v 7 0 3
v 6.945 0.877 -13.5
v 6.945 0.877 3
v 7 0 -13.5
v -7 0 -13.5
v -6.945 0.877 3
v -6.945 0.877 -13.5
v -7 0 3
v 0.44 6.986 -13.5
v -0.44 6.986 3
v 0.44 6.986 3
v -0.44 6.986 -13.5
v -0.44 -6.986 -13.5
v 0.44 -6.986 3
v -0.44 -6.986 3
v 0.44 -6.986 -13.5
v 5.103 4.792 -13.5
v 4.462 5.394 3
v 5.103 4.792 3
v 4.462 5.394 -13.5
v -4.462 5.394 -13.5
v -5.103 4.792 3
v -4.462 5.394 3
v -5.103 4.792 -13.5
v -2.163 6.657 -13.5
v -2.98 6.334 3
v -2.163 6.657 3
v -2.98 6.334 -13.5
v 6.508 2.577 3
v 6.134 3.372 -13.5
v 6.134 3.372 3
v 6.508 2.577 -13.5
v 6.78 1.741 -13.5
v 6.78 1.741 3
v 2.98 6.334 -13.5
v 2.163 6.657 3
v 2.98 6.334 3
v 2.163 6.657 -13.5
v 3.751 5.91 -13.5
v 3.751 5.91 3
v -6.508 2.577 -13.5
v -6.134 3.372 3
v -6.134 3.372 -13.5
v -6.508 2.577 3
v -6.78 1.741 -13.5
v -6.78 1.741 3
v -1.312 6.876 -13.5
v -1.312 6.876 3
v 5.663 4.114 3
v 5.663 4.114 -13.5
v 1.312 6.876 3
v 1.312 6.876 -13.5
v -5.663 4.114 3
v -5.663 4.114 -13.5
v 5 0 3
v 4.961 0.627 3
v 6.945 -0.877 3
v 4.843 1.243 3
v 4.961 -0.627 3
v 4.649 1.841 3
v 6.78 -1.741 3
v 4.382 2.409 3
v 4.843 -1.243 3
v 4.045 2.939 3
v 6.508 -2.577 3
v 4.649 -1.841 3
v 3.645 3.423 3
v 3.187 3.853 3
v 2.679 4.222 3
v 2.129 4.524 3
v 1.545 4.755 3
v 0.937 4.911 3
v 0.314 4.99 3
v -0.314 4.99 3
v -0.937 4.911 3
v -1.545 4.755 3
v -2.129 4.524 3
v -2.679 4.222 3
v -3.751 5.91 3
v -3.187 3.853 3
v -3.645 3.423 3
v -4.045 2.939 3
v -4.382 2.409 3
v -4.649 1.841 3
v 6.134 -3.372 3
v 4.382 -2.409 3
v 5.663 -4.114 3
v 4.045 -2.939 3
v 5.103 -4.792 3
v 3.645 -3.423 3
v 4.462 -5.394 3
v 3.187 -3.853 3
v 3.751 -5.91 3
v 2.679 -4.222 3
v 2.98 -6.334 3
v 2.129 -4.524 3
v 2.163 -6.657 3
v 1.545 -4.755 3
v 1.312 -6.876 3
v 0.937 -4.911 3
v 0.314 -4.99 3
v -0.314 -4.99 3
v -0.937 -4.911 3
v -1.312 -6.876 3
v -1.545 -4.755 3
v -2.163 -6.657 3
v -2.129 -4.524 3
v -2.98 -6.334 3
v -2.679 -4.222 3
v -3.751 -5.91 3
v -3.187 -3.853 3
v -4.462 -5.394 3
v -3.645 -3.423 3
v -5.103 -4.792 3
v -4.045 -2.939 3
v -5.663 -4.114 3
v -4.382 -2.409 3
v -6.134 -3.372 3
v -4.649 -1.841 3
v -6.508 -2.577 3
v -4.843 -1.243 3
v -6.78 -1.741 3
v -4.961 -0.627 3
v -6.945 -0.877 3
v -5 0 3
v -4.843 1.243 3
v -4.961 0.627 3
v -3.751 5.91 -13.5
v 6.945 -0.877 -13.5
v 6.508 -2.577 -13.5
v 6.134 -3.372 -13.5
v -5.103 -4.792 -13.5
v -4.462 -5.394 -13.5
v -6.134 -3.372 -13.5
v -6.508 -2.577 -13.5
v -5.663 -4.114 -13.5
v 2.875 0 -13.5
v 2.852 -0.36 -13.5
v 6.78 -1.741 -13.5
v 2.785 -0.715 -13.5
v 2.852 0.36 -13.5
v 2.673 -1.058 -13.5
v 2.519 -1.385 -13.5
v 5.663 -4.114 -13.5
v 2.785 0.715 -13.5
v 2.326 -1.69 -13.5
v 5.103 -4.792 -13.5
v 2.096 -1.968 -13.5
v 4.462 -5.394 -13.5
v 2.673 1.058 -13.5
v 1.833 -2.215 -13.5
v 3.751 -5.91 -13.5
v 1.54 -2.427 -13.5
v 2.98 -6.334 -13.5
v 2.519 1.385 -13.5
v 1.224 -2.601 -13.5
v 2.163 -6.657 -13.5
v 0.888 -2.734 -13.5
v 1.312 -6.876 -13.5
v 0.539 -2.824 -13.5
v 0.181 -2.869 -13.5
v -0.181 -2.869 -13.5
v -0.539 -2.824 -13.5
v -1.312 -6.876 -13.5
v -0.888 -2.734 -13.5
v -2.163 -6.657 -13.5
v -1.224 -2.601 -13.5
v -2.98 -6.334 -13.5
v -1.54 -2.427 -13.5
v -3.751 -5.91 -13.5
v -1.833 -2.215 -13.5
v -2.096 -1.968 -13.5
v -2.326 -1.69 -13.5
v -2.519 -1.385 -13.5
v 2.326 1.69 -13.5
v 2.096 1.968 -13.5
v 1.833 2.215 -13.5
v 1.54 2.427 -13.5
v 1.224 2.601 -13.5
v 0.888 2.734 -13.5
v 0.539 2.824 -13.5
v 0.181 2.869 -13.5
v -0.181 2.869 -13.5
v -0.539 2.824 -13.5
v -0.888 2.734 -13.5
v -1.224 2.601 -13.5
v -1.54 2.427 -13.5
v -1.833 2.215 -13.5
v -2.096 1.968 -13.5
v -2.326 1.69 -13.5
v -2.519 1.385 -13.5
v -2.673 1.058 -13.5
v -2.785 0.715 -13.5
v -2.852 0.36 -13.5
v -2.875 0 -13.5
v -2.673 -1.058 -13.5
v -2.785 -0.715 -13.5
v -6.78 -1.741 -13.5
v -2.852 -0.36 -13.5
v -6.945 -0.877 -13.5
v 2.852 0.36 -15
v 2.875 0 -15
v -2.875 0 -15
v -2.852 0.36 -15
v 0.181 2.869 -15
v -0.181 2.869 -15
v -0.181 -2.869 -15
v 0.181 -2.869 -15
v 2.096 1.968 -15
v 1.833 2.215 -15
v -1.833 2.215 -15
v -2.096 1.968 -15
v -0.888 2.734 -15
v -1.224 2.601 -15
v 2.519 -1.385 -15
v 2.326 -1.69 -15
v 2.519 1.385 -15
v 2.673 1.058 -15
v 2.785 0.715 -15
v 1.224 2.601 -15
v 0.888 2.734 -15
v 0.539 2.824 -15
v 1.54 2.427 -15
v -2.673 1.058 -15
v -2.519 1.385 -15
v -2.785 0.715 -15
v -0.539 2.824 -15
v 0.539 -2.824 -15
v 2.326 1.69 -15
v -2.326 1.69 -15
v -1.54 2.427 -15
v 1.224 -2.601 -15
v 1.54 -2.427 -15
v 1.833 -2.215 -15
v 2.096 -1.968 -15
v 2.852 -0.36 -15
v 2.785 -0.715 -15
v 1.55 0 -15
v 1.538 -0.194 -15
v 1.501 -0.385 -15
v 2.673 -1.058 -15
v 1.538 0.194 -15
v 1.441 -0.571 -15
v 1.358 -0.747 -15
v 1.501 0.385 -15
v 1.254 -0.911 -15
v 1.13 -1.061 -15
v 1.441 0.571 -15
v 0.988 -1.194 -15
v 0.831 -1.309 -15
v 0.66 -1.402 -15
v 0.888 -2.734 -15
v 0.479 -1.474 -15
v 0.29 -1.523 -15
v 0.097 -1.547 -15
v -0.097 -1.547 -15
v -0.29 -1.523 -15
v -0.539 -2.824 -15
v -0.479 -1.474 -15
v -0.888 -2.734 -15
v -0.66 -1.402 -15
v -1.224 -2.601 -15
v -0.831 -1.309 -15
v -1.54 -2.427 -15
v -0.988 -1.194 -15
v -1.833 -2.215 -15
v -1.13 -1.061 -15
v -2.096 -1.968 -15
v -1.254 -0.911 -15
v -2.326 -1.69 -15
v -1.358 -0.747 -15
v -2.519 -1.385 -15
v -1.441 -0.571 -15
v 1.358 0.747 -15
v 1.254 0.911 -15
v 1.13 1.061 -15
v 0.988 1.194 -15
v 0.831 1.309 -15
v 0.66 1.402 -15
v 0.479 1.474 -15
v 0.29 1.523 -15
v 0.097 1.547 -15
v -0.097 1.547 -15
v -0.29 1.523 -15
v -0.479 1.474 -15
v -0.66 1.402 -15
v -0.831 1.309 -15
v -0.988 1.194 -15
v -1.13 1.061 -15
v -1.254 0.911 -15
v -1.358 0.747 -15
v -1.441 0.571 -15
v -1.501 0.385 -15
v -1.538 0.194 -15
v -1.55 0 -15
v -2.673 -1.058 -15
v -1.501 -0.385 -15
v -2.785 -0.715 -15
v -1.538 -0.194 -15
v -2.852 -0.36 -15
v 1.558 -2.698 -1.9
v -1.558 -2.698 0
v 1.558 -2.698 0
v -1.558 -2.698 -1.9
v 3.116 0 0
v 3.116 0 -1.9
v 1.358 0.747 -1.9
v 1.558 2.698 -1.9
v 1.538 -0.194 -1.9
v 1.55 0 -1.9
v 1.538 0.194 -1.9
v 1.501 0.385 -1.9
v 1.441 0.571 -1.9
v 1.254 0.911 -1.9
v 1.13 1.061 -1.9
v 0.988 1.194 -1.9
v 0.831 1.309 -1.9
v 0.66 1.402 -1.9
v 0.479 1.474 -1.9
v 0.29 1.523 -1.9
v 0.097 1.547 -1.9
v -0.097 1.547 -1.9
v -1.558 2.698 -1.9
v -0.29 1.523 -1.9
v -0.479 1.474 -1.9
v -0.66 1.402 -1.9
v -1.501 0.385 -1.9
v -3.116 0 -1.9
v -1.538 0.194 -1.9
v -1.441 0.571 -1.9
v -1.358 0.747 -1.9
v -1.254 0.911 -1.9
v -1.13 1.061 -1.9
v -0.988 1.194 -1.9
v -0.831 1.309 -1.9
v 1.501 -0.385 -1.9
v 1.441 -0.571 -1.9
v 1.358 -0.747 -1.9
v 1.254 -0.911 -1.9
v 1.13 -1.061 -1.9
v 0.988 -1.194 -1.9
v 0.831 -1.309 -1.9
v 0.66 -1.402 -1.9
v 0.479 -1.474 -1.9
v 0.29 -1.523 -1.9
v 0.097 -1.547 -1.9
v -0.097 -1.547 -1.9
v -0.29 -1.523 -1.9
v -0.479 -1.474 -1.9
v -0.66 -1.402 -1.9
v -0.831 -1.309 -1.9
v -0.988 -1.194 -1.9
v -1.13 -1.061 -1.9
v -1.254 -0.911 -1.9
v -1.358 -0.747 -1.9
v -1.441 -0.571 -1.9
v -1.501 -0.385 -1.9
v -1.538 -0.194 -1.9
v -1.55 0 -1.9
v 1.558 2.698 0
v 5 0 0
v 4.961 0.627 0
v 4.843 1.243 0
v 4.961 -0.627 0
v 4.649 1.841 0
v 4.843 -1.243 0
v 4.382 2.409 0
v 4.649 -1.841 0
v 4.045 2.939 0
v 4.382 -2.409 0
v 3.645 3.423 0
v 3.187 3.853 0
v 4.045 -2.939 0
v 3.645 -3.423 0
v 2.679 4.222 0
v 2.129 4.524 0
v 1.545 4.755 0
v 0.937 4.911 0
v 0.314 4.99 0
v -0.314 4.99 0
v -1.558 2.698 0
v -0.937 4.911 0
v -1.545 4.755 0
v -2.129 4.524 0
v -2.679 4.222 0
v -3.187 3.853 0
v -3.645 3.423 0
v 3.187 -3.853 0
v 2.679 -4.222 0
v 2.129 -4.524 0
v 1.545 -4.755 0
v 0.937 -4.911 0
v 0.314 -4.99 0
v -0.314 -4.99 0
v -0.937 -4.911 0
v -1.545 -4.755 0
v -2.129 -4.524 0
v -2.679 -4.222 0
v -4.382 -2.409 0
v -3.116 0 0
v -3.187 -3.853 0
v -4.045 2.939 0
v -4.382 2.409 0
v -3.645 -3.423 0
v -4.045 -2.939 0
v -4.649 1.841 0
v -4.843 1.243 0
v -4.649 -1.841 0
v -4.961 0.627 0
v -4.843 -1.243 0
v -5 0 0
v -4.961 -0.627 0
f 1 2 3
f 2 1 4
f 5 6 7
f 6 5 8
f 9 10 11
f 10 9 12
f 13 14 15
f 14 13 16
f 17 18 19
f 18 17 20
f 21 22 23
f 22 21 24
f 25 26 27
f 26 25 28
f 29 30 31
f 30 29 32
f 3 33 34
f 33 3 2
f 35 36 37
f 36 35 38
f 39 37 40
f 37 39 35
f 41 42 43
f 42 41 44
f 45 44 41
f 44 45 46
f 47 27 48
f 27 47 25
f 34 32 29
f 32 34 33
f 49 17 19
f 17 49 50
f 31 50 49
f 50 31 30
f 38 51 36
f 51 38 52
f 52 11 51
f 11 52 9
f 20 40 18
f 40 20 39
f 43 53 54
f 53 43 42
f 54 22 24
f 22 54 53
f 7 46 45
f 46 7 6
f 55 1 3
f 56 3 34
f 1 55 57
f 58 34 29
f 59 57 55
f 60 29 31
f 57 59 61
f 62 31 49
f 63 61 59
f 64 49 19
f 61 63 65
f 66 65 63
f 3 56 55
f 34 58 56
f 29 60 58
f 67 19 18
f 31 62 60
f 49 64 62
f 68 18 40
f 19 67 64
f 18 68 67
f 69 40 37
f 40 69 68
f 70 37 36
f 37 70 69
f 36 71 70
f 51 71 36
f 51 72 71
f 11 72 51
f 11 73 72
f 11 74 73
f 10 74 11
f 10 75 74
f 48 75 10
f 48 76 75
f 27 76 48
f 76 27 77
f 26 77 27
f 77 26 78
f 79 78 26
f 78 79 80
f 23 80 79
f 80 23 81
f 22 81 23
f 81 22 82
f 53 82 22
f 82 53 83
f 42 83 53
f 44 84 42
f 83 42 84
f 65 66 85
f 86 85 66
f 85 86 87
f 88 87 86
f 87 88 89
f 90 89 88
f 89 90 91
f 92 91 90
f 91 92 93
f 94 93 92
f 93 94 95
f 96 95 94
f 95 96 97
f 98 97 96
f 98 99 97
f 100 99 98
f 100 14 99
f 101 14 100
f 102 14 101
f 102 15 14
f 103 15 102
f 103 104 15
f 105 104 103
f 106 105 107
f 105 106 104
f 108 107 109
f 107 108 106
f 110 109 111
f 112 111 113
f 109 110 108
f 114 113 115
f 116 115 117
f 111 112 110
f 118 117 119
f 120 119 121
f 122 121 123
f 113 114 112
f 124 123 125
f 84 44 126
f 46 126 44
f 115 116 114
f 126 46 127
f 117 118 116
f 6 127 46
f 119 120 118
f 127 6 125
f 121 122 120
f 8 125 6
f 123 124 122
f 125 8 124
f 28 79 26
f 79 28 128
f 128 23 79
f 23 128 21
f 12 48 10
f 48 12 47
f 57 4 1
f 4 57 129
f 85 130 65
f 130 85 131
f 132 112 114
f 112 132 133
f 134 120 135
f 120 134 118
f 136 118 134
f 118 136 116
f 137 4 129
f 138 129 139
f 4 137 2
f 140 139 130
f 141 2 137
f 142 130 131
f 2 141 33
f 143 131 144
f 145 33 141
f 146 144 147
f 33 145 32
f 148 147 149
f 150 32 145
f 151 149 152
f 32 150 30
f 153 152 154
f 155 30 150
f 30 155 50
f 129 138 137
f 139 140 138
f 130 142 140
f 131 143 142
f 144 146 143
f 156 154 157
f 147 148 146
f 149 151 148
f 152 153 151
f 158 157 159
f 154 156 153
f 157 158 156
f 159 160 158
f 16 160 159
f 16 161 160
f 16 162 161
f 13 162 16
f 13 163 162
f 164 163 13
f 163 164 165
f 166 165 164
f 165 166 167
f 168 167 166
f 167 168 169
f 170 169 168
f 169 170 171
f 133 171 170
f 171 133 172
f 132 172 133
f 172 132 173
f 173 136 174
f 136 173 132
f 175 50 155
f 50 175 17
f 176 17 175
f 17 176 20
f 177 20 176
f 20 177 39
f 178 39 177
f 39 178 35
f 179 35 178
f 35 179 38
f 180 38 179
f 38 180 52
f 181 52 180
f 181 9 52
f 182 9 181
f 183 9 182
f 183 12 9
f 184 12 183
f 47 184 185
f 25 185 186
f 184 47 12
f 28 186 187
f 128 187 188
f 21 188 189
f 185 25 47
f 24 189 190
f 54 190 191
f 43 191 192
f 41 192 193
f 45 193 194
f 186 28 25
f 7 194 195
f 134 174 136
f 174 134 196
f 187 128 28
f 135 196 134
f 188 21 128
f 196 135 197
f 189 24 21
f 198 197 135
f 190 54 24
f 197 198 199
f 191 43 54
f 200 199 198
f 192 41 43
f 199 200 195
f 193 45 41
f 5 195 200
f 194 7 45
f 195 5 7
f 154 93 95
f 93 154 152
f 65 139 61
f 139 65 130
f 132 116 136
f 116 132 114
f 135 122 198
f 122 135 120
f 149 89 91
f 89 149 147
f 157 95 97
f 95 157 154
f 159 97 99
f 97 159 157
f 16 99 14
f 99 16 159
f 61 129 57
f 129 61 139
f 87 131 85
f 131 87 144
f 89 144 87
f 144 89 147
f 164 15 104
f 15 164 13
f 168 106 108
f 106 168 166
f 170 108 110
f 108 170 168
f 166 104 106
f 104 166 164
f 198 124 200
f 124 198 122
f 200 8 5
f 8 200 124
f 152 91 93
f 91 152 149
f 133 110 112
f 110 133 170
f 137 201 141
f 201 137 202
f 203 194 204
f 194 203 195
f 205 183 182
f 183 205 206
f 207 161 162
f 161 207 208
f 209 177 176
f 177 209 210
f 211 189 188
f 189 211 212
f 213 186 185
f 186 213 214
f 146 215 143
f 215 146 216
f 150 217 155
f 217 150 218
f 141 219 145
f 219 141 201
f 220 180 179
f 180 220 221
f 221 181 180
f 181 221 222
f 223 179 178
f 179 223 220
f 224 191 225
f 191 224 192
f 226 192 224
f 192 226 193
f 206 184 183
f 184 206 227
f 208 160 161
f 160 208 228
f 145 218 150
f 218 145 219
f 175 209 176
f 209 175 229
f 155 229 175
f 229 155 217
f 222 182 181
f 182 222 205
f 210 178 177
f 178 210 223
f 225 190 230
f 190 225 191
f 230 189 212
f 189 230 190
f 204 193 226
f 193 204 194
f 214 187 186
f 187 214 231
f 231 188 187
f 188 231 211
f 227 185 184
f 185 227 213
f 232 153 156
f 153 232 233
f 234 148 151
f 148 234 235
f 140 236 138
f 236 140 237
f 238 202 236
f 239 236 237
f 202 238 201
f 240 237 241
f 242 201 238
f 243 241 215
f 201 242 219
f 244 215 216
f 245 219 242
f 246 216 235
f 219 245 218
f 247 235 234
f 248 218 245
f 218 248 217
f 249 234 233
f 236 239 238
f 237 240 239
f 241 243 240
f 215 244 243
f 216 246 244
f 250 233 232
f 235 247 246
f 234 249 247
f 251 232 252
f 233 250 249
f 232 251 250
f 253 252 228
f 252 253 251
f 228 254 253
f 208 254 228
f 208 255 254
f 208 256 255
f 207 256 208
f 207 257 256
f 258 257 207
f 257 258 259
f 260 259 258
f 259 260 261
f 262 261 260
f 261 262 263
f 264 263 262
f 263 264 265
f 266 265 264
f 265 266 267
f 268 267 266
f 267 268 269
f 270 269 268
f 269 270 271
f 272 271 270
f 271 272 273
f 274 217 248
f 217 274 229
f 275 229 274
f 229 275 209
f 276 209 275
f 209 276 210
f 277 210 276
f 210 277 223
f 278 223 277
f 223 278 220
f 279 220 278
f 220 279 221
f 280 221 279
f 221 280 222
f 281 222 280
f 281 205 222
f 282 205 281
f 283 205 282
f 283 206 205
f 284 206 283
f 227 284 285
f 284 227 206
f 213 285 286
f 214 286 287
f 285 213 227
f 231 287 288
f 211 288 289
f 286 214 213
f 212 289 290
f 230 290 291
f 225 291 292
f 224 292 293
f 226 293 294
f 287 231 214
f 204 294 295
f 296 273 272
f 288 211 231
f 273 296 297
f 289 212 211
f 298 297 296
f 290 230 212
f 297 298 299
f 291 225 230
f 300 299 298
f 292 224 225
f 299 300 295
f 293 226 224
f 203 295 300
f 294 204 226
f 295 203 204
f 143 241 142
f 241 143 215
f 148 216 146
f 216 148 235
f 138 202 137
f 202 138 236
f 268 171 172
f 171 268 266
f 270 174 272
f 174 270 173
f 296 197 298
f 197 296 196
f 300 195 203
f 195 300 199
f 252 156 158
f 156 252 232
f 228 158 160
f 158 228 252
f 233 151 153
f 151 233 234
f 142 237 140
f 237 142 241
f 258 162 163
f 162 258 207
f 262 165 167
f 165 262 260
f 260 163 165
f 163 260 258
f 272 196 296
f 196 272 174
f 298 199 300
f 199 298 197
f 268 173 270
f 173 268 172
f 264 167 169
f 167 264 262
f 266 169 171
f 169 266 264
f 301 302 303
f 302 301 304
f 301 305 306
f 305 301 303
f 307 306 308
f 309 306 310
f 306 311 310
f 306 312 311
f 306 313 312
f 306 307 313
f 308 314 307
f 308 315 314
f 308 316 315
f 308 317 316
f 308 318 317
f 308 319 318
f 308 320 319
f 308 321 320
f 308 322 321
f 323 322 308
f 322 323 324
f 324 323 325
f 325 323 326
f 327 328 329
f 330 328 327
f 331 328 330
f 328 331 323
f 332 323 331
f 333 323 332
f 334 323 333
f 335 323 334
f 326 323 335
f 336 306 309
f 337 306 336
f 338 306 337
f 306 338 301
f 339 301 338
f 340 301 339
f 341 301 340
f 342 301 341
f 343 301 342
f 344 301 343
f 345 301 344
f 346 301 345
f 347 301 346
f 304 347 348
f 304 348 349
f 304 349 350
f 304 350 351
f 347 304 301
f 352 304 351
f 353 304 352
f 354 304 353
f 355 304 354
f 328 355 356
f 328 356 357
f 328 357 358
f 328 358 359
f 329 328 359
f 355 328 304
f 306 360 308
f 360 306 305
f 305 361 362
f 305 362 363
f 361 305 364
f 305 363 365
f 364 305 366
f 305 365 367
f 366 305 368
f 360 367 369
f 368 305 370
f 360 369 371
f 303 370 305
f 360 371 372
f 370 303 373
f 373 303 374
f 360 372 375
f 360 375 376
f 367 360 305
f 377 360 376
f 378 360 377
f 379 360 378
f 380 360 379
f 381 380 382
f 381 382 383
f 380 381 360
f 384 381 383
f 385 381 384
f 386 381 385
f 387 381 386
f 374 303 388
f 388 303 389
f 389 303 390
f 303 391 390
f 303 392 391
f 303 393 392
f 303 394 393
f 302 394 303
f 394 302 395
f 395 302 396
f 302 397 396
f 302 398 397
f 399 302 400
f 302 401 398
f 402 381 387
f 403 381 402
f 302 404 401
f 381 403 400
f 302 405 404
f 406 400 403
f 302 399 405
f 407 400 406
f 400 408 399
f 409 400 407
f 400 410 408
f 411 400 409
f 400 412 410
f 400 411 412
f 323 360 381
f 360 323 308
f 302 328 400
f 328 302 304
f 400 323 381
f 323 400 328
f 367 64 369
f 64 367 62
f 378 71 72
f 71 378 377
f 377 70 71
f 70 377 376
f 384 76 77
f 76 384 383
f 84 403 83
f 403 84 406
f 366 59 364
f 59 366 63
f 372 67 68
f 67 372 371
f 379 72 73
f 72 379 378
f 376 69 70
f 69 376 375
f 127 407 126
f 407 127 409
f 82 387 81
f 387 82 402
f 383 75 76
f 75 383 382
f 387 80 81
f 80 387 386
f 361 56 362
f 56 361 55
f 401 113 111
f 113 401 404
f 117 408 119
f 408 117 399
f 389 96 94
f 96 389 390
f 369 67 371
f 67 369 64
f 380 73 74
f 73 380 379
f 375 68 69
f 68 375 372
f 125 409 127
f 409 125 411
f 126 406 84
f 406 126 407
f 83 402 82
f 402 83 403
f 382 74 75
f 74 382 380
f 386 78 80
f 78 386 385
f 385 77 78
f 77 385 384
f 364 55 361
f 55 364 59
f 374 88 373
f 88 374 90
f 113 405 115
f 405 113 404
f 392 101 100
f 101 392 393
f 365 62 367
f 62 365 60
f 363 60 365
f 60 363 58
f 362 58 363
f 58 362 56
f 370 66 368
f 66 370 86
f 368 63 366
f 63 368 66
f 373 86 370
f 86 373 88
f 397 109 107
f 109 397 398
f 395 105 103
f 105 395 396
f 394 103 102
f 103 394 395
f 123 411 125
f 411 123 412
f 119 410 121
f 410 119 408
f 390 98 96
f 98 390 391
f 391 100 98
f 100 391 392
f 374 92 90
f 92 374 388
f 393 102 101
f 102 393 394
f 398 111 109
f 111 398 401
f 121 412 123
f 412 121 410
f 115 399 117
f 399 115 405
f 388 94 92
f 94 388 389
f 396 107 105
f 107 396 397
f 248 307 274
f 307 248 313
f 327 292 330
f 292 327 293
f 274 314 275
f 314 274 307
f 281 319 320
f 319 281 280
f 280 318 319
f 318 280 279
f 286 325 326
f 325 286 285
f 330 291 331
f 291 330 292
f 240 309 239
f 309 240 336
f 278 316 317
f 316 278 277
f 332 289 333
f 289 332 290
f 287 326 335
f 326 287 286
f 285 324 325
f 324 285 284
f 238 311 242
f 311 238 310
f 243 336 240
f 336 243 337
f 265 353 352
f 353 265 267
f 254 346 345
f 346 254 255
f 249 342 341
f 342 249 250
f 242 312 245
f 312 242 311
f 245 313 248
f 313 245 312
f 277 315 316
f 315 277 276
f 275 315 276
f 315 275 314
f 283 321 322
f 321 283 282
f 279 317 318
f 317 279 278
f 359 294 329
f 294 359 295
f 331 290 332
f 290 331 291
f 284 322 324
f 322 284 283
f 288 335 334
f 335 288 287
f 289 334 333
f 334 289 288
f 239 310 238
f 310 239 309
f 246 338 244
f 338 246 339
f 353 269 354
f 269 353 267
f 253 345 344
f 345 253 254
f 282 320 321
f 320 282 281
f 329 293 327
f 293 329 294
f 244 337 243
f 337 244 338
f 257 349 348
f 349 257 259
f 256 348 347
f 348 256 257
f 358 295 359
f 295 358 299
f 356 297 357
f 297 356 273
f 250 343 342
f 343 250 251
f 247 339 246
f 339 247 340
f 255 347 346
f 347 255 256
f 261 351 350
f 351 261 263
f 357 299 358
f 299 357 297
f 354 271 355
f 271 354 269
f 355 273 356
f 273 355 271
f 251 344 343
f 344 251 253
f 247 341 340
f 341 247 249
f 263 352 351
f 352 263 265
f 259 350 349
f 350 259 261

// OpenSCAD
$fn = 50;


difference() {
	union() {
		translate(v = [0, 0, -13.5000000000]) {
			cylinder(h = 16.5000000000, r = 7.0000000000);
		}
		#translate(v = [0, 0, -15.0000000000]) {
			cylinder(h = 15, r = 2.8750000000);
		}
	}
	union() {
		translate(v = [0, 0, 0]) {
			rotate(a = [0, 0, 0]) {
				difference() {
					union() {
						translate(v = [0, 0, -1.9000000000]) {
							linear_extrude(height = 1.9000000000) {
								polygon(points = [[3.1158000000, 0.0000000000], [1.5579000000, 2.6983619531], [-1.5579000000, 2.6983619531], [-3.1158000000, 0.0000000000], [-1.5579000000, -2.6983619531], [1.5579000000, -2.6983619531]]);
							}
						}
					}
					union();
				}
			}
		}
		#cylinder(h = 3, r = 5.0000000000);
		#translate(v = [0, 0, -100.0000000000]) {
			cylinder(h = 200, r = 1.5500000000);
		}
	}
}
